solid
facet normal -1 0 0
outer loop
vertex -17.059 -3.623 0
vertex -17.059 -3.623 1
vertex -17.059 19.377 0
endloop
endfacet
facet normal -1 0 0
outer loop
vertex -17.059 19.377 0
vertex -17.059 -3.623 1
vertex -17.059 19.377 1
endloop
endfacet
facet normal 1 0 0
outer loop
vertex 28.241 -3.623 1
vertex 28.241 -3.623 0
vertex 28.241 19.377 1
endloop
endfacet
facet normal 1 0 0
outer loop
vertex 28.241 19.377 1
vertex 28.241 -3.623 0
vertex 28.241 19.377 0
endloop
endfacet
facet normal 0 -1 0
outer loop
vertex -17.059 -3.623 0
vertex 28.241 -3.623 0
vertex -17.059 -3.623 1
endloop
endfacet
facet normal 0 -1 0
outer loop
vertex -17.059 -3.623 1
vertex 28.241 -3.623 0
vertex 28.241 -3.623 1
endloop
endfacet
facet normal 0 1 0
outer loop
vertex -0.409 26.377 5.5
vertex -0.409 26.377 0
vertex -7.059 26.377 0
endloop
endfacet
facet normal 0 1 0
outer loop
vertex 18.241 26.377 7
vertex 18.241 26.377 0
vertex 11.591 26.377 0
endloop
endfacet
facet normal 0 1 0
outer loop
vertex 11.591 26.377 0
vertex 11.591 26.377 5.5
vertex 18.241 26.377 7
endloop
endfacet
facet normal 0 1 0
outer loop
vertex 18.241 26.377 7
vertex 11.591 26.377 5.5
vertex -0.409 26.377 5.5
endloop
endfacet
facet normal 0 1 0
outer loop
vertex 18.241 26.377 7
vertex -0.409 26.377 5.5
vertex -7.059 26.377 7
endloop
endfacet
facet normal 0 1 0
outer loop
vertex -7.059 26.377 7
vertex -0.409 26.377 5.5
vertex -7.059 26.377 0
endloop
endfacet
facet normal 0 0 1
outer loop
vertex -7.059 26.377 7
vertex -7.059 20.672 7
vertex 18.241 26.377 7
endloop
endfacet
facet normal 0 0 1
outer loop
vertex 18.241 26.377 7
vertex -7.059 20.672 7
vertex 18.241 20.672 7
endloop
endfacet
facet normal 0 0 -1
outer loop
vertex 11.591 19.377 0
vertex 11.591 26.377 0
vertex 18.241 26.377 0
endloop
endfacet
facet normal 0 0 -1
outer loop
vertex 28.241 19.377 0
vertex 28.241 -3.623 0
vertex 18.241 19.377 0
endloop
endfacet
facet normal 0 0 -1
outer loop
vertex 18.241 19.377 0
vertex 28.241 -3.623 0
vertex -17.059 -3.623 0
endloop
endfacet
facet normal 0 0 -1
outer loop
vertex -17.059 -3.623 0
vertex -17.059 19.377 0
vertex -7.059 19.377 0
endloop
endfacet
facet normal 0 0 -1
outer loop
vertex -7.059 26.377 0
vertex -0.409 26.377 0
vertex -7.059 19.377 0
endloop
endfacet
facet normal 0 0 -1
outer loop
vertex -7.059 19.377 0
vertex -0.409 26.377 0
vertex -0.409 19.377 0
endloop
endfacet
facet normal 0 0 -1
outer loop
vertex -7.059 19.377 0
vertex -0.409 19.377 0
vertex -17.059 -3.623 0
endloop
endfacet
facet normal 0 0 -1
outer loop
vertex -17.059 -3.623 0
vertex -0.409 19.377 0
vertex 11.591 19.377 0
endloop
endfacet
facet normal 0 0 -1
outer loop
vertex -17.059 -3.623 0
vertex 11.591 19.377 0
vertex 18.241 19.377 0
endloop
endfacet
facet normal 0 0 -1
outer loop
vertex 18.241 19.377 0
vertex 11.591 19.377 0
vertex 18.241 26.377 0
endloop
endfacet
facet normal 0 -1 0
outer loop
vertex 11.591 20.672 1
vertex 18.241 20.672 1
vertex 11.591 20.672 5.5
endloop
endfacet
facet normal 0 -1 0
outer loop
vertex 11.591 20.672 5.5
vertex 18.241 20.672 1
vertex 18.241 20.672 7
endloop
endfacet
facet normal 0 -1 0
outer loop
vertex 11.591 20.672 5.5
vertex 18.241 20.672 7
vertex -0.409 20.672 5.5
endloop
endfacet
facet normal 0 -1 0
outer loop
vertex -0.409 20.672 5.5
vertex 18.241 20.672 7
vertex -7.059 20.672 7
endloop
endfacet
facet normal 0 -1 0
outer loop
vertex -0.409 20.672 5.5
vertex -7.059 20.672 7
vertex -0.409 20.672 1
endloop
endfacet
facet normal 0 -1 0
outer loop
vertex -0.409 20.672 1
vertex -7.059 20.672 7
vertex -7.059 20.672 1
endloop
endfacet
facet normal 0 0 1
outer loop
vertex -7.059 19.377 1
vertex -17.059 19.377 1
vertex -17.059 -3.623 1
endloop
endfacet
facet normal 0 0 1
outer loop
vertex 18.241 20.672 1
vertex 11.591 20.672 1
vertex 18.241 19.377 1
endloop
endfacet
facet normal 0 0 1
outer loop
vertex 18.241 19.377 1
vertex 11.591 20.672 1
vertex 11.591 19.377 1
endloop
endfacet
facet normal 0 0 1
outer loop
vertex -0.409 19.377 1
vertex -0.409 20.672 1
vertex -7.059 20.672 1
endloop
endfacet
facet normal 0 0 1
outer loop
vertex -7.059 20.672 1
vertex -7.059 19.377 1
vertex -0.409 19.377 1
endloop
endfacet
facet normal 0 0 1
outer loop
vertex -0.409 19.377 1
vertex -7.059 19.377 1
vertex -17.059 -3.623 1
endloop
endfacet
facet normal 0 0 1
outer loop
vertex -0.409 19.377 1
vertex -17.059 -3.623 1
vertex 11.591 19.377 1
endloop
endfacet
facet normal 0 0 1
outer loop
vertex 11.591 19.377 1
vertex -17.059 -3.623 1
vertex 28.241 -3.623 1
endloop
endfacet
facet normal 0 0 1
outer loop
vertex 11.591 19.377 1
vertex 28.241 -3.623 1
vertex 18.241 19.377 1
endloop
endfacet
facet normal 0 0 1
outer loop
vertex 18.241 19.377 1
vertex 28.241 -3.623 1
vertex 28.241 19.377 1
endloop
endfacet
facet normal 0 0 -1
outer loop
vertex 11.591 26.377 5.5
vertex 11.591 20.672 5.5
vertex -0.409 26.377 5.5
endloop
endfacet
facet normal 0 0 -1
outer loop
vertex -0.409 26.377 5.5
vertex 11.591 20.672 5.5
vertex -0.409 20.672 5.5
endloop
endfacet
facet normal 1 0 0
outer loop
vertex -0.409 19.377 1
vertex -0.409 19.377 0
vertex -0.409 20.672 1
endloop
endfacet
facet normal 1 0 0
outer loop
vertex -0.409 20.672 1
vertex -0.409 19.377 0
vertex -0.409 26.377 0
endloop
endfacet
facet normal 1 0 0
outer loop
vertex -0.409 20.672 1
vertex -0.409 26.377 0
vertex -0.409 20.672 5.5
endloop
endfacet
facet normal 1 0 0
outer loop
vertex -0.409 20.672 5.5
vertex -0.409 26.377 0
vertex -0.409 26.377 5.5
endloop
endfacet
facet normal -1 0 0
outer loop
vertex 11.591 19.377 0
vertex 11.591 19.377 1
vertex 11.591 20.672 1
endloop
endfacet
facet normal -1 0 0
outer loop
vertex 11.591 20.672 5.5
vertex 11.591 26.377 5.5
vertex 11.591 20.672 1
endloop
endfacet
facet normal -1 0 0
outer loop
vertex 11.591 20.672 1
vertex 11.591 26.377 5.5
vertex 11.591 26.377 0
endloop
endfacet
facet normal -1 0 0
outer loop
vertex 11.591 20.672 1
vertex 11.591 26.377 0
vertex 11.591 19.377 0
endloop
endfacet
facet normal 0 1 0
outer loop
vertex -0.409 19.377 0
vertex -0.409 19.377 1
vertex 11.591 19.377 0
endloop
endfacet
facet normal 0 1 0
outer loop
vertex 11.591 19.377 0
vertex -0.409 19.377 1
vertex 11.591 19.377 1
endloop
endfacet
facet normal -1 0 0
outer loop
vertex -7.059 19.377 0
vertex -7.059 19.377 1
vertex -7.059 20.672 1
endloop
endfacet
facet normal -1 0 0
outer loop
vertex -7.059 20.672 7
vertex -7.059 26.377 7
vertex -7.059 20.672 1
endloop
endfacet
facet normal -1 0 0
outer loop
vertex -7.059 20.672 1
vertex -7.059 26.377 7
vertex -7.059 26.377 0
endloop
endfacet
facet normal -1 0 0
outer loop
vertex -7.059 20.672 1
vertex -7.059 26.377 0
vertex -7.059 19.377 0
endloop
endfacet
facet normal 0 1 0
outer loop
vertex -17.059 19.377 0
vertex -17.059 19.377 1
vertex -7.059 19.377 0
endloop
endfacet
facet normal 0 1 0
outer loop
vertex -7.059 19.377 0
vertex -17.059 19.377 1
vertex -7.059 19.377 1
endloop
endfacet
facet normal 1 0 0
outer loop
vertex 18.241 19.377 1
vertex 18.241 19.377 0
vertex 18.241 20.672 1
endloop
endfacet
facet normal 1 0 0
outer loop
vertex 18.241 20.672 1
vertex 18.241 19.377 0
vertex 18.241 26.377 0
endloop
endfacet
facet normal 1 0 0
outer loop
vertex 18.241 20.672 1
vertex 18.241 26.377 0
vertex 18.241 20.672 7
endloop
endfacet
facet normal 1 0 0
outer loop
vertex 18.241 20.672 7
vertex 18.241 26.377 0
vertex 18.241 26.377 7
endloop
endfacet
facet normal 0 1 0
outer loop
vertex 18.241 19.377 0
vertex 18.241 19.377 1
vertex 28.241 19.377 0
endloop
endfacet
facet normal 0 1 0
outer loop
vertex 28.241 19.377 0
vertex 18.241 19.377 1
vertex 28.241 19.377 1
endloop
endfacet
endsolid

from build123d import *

# Parameters (mm, degrees)
SKETCH1_W           = 45.3
SKETCH1_H           = 30
BOSS_EXTRUDE1_DEPTH = 7
SKETCH2_W           = 45.3
SKETCH2_H           = 24.294385672
CUT_EXTRUDE1_DEPTH  = 6
SKETCH5_W           = 12
SKETCH5_H           = 5.5
SKETCH5_W_2         = 10
SKETCH5_H_2         = 7
CUT_EXTRUDE2_DEPTH  = 7


with BuildPart() as part:
    # Sketch1 → Boss-Extrude1 (new body)
    with BuildSketch(Plane.XY):
        with Locations((5.590822785, 11.37721519)):
            Rectangle(SKETCH1_W, SKETCH1_H)
    extrude(amount=BOSS_EXTRUDE1_DEPTH)

    # Sketch2 → Cut-Extrude1 (cut)
    with BuildSketch(Plane.XY.offset(7)):
        with Locations((5.590822785, 8.524408026)):
            Rectangle(SKETCH2_W, SKETCH2_H)
    extrude(amount=-CUT_EXTRUDE1_DEPTH, mode=Mode.SUBTRACT)

    # Sketch5 → Cut-Extrude2 (cut)
    with BuildSketch(Plane(origin=(0, 26.37721519, 0), x_dir=(1, 0, 0), z_dir=(0, 1, 0))):
        with Locations((5.590822785, -2.75)):
            Rectangle(SKETCH5_W, SKETCH5_H)
        with Locations((-12.059177215, -3.5)):
            Rectangle(SKETCH5_W_2, SKETCH5_H_2)
        with Locations((23.240822785, -3.5)):
            Rectangle(SKETCH5_W_2, SKETCH5_H_2)
    extrude(amount=-CUT_EXTRUDE2_DEPTH, mode=Mode.SUBTRACT)


solid = part.part
